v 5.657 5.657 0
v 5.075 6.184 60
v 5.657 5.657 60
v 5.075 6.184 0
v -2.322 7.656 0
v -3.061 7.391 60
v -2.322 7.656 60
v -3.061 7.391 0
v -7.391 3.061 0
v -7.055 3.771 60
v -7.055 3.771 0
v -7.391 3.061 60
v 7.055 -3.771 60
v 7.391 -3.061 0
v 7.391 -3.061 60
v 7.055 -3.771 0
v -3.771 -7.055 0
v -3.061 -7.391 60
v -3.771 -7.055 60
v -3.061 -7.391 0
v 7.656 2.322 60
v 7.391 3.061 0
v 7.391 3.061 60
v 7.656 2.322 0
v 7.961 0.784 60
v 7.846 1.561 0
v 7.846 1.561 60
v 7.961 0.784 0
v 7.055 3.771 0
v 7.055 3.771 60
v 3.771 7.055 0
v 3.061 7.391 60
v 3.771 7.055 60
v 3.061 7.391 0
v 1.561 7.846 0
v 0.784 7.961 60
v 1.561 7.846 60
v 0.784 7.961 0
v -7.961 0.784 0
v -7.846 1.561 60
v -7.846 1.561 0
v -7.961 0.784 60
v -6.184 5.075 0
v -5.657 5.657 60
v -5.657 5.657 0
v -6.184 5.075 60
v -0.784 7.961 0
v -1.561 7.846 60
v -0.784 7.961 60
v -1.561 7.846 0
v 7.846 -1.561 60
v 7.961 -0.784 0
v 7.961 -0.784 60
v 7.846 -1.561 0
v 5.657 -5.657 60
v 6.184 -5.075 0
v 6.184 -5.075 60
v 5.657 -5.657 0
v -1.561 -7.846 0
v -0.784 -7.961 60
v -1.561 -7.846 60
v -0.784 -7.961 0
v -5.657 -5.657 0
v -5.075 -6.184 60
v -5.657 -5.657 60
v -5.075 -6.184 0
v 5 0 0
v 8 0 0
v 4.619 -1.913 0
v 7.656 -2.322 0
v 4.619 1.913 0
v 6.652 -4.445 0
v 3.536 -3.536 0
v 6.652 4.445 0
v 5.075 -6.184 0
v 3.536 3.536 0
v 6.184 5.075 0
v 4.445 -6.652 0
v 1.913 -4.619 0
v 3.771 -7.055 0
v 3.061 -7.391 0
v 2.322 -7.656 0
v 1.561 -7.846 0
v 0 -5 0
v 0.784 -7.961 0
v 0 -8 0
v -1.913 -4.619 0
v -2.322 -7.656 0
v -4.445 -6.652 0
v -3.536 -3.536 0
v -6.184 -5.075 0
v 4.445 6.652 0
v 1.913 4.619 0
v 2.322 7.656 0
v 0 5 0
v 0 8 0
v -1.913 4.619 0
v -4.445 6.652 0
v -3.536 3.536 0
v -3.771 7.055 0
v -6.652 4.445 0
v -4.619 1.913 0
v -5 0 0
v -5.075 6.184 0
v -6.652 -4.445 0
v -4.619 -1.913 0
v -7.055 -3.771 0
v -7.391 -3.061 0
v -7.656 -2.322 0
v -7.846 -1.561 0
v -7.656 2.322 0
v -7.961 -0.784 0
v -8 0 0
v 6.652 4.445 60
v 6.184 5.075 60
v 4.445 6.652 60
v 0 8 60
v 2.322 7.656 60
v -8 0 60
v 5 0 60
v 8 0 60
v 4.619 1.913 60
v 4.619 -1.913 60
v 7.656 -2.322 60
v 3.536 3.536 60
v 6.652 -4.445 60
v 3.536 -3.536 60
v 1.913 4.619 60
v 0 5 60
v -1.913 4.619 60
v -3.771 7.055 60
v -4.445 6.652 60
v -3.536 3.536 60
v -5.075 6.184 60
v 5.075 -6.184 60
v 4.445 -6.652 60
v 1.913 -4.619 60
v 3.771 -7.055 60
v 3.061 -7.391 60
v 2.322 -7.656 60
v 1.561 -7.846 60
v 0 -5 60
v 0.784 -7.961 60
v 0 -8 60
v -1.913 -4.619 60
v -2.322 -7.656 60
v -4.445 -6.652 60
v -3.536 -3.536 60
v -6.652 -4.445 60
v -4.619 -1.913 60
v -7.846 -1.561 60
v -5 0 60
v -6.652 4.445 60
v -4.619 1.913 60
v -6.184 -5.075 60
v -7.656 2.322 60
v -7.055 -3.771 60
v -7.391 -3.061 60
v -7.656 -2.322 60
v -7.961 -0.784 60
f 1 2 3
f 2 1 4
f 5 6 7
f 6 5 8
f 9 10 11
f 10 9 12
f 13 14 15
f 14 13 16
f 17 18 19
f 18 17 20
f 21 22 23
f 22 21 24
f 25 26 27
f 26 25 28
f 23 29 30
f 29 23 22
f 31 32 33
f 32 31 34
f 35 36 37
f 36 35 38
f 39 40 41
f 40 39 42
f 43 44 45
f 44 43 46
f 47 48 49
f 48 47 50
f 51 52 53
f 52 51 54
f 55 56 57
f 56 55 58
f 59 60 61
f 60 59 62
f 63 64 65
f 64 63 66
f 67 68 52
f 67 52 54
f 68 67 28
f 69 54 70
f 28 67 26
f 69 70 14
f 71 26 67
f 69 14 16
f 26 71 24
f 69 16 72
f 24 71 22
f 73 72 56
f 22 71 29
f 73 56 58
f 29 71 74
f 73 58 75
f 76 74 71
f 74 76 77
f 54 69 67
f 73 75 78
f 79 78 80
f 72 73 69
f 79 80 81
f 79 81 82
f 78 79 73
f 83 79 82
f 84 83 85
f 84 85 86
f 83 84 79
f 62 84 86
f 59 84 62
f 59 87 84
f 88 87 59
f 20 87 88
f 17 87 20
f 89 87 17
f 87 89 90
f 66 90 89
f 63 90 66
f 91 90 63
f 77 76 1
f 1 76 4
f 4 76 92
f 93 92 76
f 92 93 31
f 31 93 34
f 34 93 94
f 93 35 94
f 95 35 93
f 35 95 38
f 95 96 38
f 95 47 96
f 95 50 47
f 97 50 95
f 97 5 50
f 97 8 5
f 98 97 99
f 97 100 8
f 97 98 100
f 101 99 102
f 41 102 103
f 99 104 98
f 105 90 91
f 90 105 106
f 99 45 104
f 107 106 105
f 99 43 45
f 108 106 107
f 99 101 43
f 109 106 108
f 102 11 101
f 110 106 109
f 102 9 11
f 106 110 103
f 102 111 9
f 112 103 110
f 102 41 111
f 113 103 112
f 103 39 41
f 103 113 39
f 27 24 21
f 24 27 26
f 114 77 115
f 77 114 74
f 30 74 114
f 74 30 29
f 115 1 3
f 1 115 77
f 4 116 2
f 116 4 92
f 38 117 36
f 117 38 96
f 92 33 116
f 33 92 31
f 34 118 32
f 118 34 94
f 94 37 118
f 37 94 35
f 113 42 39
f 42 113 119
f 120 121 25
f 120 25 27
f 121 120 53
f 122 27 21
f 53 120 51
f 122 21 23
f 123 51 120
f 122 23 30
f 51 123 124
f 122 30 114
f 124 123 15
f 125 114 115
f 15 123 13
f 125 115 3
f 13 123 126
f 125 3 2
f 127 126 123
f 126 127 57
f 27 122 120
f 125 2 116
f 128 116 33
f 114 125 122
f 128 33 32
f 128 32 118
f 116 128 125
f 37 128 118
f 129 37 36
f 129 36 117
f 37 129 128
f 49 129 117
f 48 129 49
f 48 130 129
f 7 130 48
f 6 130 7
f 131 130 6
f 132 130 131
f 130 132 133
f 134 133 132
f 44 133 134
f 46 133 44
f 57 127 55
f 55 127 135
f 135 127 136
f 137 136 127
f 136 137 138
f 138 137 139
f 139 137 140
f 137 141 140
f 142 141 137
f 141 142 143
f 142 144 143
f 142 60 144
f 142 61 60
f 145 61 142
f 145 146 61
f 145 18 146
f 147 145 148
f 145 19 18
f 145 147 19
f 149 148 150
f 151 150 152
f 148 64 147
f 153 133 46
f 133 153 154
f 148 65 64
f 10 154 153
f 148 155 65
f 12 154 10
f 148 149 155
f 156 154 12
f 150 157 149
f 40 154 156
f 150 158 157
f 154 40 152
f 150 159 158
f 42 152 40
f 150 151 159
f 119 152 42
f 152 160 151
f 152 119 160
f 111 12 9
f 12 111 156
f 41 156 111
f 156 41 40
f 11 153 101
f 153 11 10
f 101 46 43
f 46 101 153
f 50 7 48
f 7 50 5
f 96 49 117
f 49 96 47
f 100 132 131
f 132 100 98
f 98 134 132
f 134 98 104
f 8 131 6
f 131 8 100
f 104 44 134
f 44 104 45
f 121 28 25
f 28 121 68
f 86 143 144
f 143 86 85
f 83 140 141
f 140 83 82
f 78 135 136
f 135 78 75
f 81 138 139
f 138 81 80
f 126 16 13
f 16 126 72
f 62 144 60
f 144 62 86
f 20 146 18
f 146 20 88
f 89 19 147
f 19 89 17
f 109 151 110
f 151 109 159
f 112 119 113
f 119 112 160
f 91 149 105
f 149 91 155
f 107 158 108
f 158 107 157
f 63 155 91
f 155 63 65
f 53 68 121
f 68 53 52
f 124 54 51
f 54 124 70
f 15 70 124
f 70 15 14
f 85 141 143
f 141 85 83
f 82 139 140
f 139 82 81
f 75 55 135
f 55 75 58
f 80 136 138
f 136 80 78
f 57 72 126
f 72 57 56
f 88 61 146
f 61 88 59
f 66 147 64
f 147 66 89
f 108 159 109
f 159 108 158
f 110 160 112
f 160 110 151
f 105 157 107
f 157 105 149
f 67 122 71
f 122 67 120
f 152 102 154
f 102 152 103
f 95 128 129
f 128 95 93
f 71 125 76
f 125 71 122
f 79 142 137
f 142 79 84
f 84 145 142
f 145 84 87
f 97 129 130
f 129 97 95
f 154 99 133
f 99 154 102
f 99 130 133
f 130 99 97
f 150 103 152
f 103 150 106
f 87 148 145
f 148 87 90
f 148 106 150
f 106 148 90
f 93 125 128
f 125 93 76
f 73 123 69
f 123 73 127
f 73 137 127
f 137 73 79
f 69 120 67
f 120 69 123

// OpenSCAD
difference() {
	cylinder($fn = 64, h = 60, r = 8);
	cylinder(h = 60, r = 5);
}
/***********************************************
******      SolidPython code:      *************
************************************************
 

from solid import *
from solid.utils import *
from solid import screw_thread

bush_length = 60
outer_rad = 8
inner_rad = 5

c = cylinder(r=outer_rad, h=bush_length, segments=64)
internal_c = cylinder(r=inner_rad, h=bush_length)

final = c - internal_c

scad_render_to_file(final, __file__.replace('.py', '.scad'))



 
 
***********************************************/
                            
